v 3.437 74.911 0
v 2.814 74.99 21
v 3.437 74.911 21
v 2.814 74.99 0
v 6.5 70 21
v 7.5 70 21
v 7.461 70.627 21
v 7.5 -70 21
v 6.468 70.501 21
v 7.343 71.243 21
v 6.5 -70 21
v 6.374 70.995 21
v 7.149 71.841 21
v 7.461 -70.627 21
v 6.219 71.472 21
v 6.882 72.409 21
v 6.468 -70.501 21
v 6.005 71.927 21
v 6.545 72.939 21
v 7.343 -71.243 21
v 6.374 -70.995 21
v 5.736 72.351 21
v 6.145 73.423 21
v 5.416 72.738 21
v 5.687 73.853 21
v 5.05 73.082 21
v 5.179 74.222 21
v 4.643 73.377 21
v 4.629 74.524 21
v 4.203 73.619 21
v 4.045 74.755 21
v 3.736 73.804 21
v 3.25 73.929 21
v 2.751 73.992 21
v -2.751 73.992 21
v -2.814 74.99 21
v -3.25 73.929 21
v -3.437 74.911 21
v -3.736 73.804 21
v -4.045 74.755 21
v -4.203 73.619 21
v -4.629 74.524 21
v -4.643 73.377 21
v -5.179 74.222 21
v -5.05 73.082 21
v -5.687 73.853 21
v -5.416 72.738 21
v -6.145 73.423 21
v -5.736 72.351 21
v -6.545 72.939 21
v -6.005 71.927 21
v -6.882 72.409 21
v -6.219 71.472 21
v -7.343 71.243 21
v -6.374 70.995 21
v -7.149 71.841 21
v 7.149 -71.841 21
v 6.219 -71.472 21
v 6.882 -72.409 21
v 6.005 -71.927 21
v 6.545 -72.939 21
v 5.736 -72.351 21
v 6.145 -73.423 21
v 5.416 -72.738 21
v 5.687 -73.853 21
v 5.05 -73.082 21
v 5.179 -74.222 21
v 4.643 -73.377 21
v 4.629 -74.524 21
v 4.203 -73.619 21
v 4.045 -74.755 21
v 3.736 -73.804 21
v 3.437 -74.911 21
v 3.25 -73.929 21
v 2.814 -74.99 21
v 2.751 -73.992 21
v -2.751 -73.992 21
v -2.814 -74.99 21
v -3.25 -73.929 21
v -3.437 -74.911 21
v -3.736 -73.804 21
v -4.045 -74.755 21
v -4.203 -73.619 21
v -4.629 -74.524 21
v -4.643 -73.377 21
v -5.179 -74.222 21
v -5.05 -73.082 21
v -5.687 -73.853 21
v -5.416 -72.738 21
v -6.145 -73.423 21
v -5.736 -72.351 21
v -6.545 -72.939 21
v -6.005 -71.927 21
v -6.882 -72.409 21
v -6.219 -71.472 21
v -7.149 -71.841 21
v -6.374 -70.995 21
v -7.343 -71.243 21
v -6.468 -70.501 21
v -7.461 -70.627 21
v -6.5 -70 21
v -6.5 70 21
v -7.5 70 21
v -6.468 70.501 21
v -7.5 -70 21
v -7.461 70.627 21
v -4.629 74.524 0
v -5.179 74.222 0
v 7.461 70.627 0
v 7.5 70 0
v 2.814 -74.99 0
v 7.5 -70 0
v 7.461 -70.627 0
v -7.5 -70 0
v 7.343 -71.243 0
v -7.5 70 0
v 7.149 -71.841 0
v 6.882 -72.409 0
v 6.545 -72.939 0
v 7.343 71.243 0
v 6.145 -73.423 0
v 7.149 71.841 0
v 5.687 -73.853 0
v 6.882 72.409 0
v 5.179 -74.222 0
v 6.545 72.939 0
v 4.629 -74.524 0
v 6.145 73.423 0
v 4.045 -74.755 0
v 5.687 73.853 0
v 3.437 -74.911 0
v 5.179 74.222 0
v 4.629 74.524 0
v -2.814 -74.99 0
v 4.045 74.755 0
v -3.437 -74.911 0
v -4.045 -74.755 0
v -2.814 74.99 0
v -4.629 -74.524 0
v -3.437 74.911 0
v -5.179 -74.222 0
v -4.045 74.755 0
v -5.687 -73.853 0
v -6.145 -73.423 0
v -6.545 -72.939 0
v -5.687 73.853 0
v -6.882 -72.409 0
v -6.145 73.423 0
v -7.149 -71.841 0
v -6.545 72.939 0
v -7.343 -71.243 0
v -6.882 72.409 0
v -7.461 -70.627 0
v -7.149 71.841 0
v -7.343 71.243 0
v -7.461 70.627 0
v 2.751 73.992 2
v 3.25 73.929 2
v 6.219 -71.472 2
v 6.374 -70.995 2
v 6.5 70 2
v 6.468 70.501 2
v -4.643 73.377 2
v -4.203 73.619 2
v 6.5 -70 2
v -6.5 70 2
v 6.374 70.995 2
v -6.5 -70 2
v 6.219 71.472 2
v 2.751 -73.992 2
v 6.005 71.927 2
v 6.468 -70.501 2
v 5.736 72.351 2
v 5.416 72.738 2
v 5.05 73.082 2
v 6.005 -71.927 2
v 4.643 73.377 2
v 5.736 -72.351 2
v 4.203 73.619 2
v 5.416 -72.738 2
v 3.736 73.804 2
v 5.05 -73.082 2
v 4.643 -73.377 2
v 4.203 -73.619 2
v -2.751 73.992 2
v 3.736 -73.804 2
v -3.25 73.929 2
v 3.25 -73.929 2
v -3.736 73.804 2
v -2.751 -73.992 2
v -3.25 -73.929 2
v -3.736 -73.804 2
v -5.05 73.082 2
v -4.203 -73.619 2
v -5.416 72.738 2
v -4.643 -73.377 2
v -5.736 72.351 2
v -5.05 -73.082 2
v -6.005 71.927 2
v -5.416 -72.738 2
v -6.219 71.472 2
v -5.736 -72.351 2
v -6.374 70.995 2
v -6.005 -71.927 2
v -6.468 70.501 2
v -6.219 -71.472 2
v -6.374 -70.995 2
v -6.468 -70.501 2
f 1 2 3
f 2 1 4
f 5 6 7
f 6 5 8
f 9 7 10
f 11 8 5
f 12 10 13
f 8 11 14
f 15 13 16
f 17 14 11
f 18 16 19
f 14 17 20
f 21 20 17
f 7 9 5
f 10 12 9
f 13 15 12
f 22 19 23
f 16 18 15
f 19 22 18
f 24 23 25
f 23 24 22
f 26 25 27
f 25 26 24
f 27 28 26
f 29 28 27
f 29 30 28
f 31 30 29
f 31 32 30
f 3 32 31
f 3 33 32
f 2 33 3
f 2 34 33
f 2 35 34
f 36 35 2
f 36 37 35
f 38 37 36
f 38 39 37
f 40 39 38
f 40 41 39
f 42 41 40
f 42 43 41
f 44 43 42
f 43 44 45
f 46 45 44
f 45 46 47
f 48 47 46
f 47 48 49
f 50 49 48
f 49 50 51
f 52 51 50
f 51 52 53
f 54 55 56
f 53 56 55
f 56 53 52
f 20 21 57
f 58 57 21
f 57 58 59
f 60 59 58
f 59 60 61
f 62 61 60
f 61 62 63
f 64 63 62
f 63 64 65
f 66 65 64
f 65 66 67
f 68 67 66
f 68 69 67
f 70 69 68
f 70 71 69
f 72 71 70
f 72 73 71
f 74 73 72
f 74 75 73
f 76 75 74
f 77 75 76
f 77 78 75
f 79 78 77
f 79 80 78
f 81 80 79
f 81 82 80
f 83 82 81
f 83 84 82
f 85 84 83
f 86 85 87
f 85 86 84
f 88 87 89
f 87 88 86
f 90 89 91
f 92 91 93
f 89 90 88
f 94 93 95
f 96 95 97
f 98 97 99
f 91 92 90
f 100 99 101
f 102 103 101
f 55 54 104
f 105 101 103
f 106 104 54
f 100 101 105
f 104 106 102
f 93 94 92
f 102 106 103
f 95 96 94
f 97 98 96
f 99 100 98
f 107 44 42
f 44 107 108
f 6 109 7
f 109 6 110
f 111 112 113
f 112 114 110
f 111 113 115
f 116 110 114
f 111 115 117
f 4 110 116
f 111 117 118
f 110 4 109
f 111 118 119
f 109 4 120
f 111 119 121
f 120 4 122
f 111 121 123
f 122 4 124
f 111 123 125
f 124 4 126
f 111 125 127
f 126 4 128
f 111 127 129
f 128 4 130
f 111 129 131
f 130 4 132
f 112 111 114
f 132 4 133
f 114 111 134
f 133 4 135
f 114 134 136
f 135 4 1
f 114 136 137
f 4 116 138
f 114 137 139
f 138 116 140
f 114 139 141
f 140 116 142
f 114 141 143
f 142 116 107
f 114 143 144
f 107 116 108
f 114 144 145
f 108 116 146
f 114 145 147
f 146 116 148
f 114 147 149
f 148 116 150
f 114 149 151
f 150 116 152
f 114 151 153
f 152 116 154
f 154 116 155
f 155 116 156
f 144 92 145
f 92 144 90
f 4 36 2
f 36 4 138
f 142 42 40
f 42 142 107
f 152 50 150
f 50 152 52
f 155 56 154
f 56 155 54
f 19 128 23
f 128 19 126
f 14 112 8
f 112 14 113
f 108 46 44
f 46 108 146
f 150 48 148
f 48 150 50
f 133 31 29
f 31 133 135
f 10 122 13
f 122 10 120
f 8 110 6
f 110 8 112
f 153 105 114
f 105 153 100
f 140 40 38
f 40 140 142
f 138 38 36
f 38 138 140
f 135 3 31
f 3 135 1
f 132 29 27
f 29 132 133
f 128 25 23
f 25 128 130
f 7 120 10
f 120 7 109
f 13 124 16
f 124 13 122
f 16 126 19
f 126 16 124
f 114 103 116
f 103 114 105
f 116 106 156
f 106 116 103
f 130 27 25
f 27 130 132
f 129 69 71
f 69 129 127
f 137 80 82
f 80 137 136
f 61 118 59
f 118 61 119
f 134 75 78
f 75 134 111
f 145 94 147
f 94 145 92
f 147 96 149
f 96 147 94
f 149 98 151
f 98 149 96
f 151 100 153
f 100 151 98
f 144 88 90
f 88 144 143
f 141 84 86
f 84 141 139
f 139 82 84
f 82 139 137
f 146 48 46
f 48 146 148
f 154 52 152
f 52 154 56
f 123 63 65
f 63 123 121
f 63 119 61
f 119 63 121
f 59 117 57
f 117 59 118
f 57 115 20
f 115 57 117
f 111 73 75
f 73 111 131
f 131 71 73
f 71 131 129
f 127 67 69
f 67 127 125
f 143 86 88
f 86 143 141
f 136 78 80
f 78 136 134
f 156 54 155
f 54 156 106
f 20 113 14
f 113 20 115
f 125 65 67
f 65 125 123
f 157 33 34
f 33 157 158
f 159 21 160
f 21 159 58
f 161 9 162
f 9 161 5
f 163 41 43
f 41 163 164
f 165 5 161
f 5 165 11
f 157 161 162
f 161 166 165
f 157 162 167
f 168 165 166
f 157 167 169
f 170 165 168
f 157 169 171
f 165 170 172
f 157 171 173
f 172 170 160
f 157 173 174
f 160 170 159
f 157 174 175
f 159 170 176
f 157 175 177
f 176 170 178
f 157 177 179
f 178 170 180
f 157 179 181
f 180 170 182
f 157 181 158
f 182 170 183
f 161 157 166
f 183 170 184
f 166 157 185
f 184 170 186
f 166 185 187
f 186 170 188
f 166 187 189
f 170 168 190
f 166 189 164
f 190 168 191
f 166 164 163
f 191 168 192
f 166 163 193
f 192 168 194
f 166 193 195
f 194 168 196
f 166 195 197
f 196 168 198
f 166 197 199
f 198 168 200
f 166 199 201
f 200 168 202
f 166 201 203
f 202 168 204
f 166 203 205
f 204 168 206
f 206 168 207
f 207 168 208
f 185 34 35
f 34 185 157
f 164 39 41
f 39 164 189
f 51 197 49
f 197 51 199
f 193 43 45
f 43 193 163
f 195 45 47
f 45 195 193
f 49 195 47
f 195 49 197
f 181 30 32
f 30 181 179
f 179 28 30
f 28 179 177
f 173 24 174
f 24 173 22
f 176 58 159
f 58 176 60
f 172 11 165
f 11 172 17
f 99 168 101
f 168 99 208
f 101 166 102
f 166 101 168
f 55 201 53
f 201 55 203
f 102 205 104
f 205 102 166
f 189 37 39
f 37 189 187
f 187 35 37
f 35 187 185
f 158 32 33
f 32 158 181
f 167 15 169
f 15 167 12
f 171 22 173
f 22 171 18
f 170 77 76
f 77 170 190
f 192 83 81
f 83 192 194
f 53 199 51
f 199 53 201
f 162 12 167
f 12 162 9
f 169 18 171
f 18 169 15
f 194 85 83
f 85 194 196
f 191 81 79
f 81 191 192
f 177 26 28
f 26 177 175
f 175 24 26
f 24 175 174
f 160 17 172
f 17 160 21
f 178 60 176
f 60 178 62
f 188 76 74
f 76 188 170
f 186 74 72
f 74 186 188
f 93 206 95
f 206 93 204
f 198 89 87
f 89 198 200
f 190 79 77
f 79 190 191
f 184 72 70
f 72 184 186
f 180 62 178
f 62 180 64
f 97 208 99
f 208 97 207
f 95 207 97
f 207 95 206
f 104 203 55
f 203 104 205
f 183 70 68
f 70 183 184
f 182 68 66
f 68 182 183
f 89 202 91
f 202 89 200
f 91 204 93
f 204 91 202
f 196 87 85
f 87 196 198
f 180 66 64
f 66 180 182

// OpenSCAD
$fn = 50;


difference() {
	union() {
		hull() {
			translate(v = [-2.5000000000, 70.0000000000, 0]) {
				cylinder(h = 21, r = 5);
			}
			translate(v = [2.5000000000, 70.0000000000, 0]) {
				cylinder(h = 21, r = 5);
			}
			translate(v = [-2.5000000000, -70.0000000000, 0]) {
				cylinder(h = 21, r = 5);
			}
			translate(v = [2.5000000000, -70.0000000000, 0]) {
				cylinder(h = 21, r = 5);
			}
		}
	}
	union() {
		translate(v = [0, 0, 2]) {
			hull() {
				translate(v = [-2.5000000000, 70.0000000000, 0]) {
					cylinder(h = 19, r = 4);
				}
				translate(v = [2.5000000000, 70.0000000000, 0]) {
					cylinder(h = 19, r = 4);
				}
				translate(v = [-2.5000000000, -70.0000000000, 0]) {
					cylinder(h = 19, r = 4);
				}
				translate(v = [2.5000000000, -70.0000000000, 0]) {
					cylinder(h = 19, r = 4);
				}
			}
		}
	}
}
